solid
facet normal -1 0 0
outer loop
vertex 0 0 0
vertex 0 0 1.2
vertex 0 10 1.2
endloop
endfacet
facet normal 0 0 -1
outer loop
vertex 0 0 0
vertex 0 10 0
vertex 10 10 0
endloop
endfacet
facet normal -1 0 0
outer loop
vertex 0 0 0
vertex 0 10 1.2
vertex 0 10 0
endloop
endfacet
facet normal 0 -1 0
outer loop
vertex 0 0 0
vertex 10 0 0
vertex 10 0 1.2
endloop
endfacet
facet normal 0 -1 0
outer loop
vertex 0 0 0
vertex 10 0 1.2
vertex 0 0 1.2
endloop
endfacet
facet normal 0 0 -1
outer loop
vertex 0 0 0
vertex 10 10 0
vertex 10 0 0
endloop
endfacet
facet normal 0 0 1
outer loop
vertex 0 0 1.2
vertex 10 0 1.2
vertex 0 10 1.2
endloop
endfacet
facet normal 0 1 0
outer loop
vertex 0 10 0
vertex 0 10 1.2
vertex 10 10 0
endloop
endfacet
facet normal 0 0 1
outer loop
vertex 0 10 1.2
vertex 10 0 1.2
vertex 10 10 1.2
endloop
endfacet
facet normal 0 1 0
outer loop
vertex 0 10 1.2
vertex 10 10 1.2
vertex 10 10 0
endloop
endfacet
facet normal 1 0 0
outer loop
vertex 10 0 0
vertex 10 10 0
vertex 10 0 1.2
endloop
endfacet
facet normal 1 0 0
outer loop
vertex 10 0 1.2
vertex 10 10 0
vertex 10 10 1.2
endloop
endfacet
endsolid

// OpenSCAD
/* Warning, this is a very basic generator with a lot of approximation 
input data : [TFBGA, B8B, 10x10x1.2mm, 121, , A, C04-21139A]
generated by com.zoubworld.electronics.cad.model3d.Basic
Date : Sun Feb 15 10:50:49 CET 2026
*/

//body
color("black")
translate([0,0,0])
cube([10.0,10.0,1.2], center=false);
